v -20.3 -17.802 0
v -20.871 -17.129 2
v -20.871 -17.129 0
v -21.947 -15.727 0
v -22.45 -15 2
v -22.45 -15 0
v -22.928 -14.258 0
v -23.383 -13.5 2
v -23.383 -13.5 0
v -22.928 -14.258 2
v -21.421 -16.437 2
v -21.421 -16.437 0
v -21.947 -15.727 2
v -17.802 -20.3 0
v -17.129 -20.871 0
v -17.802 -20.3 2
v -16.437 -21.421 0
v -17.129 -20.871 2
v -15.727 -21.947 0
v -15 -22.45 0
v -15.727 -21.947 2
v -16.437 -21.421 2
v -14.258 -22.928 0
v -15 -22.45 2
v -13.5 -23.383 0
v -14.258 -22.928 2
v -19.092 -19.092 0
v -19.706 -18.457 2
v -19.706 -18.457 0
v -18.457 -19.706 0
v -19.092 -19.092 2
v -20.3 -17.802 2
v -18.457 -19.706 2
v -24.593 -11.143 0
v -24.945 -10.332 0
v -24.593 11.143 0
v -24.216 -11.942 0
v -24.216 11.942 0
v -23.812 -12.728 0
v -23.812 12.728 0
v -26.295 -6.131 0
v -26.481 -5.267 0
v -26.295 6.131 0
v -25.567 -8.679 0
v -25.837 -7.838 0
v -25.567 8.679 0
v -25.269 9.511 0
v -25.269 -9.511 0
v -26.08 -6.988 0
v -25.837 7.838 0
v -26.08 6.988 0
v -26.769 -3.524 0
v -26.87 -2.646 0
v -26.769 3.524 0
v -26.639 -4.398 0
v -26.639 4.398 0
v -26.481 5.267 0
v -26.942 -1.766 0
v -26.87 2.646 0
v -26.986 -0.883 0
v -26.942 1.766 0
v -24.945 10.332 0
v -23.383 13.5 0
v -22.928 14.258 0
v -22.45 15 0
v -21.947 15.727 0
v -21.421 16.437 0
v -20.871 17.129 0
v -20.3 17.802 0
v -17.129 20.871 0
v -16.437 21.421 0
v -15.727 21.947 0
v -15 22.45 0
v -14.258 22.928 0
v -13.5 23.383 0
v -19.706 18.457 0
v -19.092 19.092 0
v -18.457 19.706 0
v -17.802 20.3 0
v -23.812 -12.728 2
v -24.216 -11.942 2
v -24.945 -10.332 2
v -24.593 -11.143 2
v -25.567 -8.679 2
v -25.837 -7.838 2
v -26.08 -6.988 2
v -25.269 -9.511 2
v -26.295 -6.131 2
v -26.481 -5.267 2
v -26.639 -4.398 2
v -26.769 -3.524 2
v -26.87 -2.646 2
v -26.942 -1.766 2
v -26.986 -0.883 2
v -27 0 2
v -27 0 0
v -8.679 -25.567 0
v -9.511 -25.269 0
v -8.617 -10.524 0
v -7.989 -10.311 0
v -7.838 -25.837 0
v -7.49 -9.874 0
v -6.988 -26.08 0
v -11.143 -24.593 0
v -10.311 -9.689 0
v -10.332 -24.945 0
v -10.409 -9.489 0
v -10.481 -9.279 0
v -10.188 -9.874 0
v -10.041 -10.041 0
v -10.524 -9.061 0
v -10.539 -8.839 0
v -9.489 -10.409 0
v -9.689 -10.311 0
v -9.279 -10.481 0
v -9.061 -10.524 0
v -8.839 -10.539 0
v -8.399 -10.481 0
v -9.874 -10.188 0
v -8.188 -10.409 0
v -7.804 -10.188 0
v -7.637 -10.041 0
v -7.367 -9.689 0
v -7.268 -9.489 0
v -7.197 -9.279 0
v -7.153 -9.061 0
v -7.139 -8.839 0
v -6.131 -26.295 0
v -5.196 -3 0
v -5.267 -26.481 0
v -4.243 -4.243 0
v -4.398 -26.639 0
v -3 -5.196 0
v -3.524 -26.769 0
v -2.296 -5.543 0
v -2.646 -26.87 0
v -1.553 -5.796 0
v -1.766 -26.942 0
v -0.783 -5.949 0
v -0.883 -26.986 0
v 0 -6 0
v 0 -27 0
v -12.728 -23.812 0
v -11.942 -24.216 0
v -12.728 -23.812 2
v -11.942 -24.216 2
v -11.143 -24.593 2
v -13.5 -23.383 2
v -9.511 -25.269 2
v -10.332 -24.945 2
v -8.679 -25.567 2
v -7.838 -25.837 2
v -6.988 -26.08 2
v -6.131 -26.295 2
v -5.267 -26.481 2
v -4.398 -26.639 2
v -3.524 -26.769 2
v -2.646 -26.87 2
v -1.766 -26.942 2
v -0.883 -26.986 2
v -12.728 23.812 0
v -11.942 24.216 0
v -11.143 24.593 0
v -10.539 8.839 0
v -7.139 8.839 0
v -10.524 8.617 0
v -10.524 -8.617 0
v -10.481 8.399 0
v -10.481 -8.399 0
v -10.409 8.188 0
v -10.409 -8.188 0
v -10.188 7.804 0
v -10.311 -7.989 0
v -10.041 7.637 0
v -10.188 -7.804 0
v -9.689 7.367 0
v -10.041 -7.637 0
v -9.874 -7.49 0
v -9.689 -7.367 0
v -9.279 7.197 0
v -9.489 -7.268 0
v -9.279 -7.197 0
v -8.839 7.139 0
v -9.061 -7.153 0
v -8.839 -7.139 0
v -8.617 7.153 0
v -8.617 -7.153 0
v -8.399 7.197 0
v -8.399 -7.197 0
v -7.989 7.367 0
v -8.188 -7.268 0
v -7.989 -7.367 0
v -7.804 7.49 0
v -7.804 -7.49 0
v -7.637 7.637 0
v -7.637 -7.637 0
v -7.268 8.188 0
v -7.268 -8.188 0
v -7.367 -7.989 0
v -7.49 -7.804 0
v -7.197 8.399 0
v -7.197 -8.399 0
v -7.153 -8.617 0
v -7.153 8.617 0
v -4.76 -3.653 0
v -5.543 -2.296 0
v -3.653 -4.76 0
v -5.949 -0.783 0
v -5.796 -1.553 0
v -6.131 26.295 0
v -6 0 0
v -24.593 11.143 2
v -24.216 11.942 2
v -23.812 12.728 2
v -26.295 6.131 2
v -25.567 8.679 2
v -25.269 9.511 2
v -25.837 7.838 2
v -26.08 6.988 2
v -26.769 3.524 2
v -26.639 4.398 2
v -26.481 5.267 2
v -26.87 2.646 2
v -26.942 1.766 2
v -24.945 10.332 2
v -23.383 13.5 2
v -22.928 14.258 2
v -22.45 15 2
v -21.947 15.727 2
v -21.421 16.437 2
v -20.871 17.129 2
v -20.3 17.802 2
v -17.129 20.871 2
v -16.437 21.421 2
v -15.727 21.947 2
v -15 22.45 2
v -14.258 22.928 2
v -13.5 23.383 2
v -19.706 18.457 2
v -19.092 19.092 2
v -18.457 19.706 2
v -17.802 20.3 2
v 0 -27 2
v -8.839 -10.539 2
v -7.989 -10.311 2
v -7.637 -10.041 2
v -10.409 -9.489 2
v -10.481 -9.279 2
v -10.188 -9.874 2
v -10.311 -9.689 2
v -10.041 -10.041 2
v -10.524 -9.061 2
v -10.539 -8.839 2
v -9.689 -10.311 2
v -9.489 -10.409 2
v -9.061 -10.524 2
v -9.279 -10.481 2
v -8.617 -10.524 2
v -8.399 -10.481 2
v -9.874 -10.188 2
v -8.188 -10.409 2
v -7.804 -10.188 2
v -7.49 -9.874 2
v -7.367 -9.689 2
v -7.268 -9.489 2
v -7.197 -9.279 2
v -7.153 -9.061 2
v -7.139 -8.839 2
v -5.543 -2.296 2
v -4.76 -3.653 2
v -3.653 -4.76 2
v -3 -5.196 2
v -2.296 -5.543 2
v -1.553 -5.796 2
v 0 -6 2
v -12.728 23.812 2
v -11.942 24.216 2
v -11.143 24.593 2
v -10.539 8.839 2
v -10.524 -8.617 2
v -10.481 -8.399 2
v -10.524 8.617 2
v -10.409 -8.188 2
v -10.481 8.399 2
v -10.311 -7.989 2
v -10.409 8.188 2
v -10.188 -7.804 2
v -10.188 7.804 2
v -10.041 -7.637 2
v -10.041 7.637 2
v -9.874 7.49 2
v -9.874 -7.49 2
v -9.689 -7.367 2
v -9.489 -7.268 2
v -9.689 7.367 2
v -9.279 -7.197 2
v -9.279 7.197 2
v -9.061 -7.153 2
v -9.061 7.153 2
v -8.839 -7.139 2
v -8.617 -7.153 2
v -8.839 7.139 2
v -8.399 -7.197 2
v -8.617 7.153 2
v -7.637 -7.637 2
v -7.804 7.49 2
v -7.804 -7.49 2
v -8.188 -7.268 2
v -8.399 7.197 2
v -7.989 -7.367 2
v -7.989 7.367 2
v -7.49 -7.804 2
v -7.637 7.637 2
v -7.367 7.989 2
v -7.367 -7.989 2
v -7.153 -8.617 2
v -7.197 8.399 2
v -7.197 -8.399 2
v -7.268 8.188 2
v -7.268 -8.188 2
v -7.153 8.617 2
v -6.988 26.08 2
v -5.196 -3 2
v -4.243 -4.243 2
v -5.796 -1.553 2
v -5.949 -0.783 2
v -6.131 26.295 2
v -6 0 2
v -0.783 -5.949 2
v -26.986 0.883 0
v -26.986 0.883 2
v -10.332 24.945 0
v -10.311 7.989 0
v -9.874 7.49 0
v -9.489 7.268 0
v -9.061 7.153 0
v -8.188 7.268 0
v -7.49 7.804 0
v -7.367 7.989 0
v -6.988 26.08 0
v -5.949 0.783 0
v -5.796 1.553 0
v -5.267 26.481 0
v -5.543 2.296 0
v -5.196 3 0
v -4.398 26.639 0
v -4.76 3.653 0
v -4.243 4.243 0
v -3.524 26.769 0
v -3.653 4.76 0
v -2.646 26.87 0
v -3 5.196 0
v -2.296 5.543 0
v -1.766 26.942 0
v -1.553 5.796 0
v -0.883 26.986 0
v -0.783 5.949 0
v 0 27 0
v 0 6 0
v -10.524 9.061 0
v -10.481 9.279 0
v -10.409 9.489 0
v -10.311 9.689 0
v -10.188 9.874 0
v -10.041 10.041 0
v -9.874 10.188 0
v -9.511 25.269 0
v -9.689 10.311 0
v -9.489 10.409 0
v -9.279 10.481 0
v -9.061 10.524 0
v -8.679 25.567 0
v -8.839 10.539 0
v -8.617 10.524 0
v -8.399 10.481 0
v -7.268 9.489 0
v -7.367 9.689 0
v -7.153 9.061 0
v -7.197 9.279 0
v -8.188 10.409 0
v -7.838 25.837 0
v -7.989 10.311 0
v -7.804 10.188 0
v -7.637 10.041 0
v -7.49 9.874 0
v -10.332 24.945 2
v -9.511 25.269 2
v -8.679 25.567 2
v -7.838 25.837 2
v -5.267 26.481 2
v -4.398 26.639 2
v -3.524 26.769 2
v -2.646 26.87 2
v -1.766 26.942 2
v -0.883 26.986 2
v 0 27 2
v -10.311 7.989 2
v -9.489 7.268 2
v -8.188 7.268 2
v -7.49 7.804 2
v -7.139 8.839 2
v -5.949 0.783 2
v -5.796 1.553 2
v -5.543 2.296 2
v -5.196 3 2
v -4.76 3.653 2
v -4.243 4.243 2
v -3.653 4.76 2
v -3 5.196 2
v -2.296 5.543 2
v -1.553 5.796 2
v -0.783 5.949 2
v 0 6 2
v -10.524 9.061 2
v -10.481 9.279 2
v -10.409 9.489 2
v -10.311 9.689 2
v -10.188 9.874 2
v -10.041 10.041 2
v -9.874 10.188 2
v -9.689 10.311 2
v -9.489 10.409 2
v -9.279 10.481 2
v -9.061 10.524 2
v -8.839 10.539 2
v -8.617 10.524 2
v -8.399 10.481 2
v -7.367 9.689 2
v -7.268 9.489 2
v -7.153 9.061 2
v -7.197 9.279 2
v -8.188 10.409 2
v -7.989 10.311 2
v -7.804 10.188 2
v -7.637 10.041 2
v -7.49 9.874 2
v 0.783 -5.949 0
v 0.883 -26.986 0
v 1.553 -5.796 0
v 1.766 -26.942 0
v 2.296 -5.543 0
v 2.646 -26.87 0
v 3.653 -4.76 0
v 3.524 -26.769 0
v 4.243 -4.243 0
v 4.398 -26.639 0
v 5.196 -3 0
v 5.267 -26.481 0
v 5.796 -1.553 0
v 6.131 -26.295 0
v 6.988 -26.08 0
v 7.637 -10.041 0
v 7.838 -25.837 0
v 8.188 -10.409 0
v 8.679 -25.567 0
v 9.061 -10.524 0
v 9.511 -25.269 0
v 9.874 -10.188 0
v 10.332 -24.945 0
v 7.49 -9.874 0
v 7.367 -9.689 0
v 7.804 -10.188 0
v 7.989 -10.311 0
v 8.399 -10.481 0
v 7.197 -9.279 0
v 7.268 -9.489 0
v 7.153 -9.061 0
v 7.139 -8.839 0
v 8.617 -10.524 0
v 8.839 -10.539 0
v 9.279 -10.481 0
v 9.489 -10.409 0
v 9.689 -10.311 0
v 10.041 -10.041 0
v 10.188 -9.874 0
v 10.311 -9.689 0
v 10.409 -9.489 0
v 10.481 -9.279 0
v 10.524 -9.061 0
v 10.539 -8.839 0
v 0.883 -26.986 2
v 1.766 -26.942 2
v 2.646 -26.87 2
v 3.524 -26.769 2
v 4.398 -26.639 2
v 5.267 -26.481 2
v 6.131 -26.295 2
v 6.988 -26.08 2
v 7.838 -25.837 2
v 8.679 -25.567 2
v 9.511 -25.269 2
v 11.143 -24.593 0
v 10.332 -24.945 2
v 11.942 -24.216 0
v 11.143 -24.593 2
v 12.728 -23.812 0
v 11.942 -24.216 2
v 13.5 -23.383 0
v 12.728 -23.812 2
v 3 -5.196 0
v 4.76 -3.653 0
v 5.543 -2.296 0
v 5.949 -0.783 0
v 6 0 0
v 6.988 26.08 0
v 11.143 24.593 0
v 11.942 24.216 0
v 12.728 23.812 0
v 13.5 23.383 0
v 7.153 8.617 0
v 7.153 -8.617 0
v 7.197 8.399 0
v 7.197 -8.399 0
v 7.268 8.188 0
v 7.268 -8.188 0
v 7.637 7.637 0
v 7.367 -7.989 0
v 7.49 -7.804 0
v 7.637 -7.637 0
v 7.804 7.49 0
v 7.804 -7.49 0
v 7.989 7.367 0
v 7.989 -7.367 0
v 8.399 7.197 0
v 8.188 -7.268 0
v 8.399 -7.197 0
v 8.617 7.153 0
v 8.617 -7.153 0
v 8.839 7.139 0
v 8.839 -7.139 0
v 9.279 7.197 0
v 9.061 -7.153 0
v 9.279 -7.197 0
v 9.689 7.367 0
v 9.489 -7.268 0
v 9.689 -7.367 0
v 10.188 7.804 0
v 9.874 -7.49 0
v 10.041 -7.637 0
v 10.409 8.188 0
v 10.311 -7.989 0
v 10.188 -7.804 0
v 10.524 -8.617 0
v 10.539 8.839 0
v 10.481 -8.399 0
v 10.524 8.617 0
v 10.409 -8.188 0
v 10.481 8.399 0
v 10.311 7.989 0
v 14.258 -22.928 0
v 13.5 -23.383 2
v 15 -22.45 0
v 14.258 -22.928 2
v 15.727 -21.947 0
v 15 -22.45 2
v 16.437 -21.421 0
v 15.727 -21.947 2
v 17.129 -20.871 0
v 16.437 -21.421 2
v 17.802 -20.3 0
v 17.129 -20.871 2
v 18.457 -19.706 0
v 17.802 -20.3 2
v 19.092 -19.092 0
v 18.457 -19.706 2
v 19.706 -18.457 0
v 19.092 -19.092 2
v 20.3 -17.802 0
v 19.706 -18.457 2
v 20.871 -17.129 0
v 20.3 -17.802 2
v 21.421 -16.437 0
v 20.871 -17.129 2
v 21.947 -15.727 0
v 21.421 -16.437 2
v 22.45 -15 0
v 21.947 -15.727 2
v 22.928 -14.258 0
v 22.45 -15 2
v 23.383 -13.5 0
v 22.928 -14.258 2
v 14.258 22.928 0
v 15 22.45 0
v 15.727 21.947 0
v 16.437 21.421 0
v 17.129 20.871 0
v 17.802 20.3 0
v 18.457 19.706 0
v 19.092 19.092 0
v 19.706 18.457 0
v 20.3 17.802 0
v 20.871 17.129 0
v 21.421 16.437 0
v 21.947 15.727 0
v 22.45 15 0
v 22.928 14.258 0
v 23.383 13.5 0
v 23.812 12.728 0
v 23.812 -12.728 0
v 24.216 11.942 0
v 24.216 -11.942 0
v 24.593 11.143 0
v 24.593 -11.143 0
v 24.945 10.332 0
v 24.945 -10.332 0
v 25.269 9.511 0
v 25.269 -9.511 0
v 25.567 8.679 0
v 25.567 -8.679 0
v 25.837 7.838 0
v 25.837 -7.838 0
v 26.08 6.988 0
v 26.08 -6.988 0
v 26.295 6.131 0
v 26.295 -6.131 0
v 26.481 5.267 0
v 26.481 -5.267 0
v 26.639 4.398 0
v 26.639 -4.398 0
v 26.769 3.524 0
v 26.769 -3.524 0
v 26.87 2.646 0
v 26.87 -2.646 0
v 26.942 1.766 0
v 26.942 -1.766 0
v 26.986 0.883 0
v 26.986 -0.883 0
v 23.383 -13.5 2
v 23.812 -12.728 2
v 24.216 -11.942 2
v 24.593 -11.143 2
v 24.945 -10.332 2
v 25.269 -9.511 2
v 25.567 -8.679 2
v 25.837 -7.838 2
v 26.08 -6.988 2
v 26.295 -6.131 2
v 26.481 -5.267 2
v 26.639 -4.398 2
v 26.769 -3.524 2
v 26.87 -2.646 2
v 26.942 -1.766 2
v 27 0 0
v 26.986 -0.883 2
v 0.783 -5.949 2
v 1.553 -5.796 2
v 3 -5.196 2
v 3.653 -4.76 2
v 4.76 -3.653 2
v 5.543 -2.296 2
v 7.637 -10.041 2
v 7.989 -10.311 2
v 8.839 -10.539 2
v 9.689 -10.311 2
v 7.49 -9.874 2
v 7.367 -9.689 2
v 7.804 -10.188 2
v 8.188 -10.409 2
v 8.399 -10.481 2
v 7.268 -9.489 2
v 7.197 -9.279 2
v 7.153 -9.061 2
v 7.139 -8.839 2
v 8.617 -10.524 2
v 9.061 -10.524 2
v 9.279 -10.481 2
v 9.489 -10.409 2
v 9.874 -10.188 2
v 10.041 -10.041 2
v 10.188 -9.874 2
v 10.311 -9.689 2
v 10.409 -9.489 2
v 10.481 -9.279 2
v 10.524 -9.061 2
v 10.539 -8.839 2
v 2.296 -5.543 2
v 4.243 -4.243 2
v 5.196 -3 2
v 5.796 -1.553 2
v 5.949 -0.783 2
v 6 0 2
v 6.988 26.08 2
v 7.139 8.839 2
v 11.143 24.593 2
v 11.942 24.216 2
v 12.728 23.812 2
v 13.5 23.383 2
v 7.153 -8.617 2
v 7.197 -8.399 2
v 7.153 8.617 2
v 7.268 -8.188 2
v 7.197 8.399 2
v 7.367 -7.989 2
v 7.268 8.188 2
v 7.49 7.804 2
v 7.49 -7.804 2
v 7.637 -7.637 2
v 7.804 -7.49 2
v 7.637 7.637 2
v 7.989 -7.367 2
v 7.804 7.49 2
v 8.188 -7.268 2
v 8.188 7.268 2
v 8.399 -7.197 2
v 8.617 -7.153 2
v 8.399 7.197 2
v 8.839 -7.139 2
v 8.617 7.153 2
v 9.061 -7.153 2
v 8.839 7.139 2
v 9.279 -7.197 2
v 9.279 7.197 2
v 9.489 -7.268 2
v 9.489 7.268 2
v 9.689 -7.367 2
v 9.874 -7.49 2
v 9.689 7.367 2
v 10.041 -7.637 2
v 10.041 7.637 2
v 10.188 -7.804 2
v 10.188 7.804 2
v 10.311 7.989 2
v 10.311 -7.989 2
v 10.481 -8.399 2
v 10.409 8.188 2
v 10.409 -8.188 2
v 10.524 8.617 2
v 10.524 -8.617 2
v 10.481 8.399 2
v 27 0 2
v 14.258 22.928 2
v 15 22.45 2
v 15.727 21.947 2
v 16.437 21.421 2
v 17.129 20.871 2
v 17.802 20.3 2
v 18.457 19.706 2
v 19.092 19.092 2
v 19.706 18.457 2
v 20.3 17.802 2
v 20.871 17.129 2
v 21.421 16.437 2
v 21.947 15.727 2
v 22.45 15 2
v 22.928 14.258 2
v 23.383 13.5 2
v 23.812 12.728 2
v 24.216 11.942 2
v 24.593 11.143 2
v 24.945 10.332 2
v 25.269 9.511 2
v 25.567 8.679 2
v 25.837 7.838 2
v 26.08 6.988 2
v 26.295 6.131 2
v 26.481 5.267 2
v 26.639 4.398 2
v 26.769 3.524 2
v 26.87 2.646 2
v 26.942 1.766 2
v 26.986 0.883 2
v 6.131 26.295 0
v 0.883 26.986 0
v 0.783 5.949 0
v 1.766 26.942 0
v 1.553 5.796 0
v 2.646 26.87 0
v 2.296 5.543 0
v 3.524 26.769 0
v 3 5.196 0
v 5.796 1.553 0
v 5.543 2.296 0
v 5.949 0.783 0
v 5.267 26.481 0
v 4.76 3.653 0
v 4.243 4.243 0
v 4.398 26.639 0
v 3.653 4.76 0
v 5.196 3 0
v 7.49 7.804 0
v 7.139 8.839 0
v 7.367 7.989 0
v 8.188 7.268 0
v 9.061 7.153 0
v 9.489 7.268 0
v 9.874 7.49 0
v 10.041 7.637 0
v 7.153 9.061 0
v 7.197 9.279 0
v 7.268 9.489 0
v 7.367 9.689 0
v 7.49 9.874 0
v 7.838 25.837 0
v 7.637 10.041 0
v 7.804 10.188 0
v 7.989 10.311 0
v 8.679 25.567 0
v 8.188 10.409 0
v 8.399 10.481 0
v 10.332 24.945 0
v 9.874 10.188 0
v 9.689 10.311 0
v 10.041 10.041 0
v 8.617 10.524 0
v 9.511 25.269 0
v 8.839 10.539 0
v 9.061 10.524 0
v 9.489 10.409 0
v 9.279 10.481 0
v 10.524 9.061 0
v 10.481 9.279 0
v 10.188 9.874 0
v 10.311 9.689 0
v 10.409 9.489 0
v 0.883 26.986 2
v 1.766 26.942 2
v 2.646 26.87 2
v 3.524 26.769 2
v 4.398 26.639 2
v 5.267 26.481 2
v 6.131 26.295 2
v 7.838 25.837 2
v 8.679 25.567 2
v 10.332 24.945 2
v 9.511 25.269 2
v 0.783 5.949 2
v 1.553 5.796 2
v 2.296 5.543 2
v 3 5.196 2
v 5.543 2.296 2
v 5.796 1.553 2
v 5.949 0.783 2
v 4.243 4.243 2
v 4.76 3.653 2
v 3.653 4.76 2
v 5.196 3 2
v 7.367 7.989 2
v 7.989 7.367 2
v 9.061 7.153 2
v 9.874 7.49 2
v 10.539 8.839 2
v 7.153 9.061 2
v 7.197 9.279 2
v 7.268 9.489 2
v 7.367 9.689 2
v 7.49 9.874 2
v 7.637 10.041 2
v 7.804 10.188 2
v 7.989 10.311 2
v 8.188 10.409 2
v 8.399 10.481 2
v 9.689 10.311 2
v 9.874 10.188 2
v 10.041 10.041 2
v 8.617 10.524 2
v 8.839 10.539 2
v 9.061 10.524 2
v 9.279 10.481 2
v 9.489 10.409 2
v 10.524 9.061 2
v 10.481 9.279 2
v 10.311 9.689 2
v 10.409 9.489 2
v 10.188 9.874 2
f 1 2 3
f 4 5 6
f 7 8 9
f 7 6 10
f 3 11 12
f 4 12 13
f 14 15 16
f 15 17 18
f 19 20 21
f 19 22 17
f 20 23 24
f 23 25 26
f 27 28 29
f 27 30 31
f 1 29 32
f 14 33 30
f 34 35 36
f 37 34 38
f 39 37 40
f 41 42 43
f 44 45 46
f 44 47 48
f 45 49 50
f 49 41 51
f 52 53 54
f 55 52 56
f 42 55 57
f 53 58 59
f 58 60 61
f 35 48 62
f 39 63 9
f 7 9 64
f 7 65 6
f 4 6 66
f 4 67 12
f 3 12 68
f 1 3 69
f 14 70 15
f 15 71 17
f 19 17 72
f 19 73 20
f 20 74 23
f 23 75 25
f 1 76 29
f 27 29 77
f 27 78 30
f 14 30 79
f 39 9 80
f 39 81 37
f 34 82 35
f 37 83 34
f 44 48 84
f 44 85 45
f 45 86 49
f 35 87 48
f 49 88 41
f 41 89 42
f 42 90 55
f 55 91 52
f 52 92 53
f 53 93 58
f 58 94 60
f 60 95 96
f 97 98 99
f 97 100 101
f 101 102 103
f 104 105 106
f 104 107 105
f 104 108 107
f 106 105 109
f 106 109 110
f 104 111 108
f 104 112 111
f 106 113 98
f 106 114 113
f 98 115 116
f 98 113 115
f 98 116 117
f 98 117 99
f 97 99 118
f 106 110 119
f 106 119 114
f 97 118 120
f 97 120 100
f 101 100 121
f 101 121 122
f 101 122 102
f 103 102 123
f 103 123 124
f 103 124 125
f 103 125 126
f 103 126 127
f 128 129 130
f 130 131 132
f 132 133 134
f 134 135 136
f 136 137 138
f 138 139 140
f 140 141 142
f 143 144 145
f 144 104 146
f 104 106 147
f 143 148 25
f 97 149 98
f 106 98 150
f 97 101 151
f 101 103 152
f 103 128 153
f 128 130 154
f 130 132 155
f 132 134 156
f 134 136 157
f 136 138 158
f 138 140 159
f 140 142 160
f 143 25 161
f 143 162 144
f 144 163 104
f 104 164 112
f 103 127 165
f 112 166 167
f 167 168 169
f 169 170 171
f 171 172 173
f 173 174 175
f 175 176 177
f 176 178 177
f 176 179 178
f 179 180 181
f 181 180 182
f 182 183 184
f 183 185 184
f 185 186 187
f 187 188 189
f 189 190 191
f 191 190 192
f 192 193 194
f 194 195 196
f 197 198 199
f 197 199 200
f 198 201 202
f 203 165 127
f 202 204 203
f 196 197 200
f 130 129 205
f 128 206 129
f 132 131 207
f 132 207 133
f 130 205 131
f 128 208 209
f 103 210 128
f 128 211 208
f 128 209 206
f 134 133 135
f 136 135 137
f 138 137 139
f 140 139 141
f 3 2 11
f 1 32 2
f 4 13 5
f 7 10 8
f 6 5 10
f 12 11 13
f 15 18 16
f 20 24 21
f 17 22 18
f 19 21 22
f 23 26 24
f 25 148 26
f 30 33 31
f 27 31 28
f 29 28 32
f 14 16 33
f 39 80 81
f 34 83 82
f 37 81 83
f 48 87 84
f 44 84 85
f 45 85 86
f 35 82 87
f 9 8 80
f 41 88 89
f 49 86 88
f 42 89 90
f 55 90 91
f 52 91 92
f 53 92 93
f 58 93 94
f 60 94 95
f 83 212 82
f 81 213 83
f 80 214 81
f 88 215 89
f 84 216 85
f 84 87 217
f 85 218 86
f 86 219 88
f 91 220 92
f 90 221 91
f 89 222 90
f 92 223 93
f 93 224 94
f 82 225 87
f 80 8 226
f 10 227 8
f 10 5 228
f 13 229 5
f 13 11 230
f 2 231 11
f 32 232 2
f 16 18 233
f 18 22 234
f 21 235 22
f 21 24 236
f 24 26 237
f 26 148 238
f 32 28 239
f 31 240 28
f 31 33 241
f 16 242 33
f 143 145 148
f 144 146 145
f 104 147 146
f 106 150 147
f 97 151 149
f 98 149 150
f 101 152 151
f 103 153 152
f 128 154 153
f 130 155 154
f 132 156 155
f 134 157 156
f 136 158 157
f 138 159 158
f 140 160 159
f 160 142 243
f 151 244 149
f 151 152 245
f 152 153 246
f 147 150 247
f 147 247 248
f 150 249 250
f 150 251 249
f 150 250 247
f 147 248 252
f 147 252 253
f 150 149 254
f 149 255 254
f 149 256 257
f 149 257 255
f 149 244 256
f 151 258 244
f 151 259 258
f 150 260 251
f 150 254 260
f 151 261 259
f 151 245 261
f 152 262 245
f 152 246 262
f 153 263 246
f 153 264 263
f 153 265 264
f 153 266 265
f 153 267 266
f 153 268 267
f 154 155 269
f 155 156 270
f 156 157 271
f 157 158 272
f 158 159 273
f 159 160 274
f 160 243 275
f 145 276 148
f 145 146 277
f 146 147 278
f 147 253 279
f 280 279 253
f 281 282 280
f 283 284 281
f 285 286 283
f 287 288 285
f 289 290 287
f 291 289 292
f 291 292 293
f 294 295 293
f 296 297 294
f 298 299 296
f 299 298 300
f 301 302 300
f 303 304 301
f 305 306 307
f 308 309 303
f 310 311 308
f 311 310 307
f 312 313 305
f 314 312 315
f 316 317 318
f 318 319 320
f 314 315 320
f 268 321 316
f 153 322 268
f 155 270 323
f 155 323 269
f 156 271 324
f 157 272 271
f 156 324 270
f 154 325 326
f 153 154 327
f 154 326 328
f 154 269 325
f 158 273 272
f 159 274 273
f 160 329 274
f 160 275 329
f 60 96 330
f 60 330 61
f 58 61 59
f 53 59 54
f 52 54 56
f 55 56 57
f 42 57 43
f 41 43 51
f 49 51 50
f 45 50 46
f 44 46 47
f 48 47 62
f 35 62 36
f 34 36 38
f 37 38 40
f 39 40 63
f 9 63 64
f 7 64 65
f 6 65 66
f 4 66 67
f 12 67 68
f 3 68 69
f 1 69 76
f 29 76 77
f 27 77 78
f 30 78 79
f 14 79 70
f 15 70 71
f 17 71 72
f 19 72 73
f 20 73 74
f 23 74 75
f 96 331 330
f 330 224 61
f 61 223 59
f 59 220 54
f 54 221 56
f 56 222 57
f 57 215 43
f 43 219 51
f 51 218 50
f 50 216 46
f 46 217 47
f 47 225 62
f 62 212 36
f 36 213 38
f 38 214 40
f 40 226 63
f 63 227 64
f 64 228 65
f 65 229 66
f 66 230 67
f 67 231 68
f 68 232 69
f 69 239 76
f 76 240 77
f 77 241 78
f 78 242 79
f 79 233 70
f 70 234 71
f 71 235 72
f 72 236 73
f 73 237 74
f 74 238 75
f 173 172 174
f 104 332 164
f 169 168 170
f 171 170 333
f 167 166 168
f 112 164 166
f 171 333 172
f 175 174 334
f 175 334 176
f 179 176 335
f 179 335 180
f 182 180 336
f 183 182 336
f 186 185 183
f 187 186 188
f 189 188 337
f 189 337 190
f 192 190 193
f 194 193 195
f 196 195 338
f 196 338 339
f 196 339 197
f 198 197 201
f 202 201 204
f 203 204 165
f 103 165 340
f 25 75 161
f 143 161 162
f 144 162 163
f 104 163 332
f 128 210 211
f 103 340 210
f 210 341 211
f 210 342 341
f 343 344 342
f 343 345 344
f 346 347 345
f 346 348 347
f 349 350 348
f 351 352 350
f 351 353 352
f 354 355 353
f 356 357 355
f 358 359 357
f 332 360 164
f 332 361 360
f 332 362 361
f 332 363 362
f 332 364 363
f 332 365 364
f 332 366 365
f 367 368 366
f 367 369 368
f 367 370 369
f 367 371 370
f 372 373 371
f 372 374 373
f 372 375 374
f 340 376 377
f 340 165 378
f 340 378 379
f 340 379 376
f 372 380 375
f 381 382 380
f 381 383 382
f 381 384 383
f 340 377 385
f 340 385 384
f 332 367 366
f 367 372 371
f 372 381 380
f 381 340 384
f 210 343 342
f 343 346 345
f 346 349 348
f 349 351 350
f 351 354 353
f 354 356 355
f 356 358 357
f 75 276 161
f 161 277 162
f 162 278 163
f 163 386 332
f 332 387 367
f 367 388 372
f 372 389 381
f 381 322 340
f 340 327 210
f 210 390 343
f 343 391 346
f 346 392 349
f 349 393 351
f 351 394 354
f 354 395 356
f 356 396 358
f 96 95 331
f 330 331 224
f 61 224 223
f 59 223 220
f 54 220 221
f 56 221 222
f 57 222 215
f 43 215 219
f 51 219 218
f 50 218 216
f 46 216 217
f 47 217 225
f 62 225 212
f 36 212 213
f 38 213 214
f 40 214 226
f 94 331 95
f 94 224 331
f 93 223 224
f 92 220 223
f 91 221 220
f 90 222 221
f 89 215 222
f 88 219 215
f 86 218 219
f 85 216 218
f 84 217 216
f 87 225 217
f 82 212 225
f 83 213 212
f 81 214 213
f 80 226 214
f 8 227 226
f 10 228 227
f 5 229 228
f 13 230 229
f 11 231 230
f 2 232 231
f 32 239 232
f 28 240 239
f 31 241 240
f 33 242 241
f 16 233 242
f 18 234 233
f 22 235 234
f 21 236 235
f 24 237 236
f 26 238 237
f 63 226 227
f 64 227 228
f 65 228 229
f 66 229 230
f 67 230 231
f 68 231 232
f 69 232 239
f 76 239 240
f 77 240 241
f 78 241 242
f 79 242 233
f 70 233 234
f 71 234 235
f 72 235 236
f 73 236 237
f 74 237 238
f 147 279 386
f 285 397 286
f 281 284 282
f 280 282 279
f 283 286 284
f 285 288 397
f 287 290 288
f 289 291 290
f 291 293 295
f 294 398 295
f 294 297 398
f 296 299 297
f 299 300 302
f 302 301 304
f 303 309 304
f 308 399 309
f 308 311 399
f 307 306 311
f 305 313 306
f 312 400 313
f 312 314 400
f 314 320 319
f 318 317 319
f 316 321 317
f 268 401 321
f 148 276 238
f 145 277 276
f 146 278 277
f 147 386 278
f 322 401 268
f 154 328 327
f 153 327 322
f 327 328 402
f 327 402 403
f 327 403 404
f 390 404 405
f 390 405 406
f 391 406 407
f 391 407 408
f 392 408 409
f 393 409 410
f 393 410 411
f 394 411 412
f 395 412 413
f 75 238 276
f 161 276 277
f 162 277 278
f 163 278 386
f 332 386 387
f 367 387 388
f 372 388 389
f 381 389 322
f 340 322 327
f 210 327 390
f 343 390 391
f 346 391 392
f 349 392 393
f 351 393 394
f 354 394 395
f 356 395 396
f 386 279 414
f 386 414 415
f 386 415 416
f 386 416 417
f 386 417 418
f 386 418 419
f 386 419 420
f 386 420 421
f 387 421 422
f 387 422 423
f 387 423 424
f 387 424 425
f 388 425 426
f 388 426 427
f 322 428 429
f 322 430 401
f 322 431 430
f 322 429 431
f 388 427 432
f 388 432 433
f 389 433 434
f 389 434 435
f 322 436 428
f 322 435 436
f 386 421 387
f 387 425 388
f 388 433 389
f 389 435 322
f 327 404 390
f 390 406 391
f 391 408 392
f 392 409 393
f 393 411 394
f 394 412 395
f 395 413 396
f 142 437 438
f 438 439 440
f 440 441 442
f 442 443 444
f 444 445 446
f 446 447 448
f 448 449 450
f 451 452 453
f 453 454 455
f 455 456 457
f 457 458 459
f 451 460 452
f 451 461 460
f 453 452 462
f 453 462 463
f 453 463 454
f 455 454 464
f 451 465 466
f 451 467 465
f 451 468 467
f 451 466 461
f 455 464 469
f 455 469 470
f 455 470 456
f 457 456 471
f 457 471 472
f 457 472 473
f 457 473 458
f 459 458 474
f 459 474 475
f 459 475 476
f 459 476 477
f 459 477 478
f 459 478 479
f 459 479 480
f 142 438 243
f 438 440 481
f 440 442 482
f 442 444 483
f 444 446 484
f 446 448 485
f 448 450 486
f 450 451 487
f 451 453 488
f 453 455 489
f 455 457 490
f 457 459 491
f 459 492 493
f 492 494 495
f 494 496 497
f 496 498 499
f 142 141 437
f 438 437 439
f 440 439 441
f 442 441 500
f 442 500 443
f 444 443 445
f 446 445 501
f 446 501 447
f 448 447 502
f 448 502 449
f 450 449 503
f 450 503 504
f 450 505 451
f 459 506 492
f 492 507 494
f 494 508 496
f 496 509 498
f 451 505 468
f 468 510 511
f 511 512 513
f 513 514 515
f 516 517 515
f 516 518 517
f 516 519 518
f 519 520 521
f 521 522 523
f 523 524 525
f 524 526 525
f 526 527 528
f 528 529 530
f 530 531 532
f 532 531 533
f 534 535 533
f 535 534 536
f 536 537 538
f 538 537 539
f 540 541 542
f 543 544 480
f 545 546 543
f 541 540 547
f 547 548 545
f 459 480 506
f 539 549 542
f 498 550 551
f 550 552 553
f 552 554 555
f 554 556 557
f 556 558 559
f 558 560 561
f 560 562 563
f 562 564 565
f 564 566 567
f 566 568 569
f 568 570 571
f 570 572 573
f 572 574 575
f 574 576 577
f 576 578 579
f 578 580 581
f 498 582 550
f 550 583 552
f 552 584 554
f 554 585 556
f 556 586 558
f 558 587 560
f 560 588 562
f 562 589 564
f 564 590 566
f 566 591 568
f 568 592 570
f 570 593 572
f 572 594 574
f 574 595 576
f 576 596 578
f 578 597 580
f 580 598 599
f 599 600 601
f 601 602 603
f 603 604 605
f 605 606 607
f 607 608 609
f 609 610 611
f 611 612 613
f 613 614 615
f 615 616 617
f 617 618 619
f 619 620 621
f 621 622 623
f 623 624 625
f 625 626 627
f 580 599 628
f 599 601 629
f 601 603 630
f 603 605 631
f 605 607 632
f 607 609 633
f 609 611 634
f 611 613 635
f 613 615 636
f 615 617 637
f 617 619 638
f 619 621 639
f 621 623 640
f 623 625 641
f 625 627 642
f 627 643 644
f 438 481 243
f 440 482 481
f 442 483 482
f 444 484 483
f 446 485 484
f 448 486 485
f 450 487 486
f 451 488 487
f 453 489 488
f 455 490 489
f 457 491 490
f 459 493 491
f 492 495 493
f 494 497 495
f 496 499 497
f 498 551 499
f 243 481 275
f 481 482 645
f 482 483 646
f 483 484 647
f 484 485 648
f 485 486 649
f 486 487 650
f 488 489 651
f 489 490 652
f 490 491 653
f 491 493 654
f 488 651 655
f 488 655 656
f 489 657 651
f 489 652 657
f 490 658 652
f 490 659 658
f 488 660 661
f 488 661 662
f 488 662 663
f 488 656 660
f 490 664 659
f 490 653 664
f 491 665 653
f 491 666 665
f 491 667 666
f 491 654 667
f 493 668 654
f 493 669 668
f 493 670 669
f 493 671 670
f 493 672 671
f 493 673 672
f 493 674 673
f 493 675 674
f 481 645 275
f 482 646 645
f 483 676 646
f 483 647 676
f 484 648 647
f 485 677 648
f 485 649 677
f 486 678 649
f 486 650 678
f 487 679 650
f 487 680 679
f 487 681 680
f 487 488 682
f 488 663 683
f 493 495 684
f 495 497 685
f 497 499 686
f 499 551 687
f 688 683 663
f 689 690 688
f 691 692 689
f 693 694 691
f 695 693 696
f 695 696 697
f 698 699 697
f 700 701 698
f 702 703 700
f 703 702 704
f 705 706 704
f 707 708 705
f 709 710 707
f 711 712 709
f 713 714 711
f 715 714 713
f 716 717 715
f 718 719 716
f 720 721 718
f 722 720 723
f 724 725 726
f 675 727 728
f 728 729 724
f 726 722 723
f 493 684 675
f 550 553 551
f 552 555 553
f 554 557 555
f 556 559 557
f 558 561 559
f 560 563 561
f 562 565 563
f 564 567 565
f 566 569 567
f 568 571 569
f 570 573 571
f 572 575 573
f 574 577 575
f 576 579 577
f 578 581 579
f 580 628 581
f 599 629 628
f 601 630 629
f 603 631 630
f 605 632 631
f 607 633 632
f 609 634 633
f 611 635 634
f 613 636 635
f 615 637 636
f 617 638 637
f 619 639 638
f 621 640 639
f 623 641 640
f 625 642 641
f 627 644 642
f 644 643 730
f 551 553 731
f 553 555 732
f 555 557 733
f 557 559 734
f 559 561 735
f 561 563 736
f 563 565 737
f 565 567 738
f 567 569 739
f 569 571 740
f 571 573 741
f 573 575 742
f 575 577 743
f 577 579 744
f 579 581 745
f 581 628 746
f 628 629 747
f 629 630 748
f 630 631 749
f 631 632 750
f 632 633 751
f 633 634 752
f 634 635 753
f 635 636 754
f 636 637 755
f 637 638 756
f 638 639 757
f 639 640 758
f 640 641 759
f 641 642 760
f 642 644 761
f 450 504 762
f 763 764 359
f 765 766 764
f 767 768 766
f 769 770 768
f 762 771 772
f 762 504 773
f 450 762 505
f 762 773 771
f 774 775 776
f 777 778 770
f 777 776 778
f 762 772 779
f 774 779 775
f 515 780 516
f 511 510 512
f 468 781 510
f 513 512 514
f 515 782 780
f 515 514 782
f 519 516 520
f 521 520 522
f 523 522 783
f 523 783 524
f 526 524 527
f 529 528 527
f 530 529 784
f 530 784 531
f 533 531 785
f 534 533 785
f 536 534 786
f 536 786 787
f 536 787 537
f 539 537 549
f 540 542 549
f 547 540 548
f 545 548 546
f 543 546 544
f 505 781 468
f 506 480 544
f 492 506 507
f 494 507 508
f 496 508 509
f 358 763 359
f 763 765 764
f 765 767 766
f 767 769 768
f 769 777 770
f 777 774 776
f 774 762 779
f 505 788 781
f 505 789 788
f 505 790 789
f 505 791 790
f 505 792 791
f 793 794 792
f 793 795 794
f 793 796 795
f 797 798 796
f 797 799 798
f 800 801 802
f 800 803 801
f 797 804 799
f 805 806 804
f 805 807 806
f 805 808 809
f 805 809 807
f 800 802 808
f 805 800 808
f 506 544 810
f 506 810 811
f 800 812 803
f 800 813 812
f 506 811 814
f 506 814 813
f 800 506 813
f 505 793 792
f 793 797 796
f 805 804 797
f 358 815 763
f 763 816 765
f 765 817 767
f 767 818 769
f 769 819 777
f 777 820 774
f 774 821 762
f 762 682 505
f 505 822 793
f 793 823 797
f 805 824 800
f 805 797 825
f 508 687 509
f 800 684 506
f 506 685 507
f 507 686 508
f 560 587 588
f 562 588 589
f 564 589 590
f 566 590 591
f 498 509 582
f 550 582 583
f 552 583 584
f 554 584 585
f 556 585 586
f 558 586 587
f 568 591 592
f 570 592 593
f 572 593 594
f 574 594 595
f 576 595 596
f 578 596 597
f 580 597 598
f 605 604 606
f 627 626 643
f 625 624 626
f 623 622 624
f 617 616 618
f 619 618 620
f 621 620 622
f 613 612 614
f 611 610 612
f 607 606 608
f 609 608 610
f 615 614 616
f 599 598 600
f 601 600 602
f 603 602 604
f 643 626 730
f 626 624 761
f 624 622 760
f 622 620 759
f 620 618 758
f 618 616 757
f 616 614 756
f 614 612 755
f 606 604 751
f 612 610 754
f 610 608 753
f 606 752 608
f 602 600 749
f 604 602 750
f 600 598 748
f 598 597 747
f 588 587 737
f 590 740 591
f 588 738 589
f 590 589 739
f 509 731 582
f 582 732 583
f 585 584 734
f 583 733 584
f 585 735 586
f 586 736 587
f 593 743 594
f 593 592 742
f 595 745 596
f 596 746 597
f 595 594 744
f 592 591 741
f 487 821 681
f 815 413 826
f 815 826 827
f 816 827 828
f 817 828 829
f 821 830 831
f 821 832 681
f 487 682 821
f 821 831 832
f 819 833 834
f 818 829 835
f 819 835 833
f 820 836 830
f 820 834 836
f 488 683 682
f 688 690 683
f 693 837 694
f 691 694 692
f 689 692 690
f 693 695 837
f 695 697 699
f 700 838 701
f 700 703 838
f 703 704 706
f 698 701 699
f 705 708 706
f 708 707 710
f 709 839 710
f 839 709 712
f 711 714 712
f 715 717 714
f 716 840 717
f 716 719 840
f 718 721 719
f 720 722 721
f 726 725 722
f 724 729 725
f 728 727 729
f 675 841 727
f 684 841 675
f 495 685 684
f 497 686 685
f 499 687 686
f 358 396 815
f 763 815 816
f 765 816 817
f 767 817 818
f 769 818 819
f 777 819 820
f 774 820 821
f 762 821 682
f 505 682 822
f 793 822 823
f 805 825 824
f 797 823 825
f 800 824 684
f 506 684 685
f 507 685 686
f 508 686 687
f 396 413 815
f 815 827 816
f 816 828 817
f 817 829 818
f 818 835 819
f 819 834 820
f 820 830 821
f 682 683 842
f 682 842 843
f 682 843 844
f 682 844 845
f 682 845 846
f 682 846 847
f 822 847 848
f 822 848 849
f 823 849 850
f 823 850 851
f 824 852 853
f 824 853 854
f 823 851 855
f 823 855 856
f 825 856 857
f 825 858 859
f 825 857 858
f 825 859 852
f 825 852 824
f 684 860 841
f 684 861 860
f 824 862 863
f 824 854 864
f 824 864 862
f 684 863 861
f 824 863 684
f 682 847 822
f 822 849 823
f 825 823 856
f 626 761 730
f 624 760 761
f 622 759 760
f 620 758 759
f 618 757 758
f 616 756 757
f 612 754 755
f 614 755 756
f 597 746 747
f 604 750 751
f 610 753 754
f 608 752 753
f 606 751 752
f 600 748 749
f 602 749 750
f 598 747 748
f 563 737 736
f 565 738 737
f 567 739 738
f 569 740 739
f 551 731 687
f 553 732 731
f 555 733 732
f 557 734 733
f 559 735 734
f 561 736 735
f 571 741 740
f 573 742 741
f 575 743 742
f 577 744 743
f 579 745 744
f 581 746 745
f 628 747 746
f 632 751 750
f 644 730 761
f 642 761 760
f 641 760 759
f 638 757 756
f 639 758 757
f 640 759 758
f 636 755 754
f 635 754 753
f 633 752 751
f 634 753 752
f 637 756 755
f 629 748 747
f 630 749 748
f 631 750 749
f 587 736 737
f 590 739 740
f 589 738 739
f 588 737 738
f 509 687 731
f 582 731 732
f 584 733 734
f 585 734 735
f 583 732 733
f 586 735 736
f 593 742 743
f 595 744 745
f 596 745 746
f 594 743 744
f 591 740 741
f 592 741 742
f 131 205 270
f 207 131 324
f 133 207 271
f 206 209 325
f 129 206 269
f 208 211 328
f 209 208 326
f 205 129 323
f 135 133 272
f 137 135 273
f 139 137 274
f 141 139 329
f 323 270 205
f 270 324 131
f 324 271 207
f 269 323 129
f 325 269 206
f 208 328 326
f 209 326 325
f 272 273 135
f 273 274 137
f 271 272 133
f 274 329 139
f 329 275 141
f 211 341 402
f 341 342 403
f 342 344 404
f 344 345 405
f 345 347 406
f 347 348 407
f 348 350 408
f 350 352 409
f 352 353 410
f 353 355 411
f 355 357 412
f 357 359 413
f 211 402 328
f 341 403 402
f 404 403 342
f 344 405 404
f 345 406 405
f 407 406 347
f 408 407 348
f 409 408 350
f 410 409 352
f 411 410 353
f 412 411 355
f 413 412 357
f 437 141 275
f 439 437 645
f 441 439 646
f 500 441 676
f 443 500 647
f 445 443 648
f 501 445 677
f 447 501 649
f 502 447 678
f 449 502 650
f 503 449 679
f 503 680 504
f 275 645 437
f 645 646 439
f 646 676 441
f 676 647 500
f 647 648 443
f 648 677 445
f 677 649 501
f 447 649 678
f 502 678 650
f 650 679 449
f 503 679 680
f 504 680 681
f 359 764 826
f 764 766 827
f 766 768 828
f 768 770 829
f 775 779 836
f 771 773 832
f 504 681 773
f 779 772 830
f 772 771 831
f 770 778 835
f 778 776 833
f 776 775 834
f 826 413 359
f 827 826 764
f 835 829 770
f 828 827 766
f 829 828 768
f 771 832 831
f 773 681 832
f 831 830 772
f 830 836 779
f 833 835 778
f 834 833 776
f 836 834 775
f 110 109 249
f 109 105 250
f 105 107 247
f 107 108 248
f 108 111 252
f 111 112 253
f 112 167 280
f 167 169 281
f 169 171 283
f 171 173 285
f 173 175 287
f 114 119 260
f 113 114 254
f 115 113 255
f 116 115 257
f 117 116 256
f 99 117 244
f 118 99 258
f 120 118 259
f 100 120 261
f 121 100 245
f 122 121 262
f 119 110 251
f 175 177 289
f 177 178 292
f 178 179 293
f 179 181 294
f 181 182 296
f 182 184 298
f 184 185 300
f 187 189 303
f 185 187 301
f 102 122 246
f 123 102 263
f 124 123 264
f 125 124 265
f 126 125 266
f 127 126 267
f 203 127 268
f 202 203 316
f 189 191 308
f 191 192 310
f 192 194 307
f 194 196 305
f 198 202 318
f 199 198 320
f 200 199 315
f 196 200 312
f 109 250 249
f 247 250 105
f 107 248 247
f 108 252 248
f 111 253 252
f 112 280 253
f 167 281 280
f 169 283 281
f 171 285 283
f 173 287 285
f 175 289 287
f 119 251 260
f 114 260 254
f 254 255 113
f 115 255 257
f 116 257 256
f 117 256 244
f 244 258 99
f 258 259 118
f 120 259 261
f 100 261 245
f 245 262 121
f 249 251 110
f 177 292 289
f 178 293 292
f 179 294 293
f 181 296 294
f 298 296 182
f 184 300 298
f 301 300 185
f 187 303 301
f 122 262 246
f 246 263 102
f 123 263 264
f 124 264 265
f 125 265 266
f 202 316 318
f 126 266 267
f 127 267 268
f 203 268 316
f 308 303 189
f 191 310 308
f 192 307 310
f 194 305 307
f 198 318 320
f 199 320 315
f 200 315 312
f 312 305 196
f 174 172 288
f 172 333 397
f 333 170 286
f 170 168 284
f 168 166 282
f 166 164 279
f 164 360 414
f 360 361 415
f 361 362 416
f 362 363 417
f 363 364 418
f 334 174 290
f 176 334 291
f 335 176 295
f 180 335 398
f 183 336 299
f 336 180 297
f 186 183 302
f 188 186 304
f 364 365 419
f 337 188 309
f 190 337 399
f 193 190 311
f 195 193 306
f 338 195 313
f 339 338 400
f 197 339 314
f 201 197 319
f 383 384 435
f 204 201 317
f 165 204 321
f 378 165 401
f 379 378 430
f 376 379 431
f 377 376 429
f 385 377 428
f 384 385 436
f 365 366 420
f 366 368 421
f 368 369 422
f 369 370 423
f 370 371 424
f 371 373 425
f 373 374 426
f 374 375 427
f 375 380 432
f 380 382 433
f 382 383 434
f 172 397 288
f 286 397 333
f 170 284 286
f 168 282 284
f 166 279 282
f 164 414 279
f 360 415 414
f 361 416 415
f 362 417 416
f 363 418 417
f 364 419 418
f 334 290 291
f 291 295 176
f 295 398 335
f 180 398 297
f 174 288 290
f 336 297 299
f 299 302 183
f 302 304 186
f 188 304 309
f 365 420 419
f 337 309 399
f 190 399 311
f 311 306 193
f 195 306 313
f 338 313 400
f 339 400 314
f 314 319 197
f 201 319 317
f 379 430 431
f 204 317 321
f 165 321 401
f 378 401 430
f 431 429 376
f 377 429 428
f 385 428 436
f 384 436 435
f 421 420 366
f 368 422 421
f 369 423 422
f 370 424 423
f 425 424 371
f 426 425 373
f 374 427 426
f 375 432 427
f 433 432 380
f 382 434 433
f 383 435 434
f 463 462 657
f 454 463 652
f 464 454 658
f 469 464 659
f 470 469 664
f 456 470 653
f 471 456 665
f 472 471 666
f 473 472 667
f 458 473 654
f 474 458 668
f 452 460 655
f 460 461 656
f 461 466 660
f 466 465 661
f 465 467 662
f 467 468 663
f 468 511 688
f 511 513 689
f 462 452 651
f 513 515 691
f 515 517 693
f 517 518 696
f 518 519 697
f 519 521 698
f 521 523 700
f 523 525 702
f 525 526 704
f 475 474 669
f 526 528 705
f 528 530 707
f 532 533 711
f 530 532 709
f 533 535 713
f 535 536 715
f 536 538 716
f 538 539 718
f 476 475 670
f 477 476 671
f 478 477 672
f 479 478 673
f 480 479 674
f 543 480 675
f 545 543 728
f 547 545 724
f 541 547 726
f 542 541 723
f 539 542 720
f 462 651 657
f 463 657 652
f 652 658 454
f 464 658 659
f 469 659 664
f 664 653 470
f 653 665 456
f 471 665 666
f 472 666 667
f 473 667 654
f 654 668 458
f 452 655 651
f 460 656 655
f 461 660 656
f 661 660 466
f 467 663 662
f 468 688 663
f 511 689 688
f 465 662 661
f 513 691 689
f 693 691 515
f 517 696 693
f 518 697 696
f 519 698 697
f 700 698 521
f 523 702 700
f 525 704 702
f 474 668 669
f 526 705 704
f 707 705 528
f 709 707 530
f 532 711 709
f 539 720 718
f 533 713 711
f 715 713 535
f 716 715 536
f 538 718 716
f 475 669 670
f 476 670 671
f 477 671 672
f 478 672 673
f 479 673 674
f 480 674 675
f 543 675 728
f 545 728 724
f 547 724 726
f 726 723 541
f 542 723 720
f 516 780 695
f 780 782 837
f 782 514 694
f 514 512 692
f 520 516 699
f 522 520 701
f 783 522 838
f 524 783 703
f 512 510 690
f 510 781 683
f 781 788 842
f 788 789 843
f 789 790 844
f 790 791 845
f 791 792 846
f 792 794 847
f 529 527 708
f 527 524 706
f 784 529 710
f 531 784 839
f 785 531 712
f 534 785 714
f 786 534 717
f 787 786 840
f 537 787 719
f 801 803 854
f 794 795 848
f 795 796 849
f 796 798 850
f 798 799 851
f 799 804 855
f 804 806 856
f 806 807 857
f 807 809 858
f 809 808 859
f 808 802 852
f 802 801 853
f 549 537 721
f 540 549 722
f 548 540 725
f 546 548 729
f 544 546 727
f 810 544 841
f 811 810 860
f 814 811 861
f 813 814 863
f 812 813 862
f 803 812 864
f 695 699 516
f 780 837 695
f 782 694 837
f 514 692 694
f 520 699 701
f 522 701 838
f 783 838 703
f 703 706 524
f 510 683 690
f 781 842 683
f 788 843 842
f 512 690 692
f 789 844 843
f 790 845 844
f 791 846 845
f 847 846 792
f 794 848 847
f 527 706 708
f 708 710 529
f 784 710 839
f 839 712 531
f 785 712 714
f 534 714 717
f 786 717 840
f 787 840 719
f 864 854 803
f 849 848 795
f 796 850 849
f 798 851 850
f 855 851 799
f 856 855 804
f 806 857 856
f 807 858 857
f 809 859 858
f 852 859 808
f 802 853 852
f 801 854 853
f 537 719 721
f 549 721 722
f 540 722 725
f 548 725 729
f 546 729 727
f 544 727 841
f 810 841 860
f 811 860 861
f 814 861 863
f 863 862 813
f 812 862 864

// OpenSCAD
// POV 3D 电机垫片 motor_shim_v4  (2026-09-03)
// 垫在 baseplate_collar_v4 凸台内腔底面 (装配 Z=5) 上, 把 C4110 抬高 thick。
// 与 build_stl.py 的参数必须一致 (本文件是复刻不是 import)。

boss_id        = 55;      // 复刻自 baseplate_collar_v4: 凸台内孔
m3_rot         = 0;       // 电机孔整组转角
m3_diag        = 25;      // 电机孔对角间距
center_cb_diam = 12;      // 底盘顶面中央沉孔直径

thick     = 2;                        // 2026-09-03 用户指定
od        = 54;                       // 2026-09-03 用户指定
clear_rad = (boss_id - od) / 2;       // 派生: 0.5 单边隙
m3_diam   = 3.4;                      // 过孔 (底盘上是 Φ3.2, 这里放 0.2)
center_d  = center_cb_diam;           // 12

m3_off = m3_diag / sqrt(2) / 2;       // 8.8388

module motor_shim_v4() {
    difference() {
        cylinder(h = thick, d = od, $fn = 192);

        // 中央 Φ12 通孔
        translate([0, 0, -1])
            cylinder(h = thick + 2, d = center_d, $fn = 48);

        // 4 × Φ3.4 电机过孔 (对角 25)
        rotate([0, 0, m3_rot])
            for (sx = [-1, 1], sy = [-1, 1])
                translate([sx * m3_off, sy * m3_off, -1])
                    cylinder(h = thick + 2, d = m3_diam, $fn = 48);
    }
}

motor_shim_v4();
